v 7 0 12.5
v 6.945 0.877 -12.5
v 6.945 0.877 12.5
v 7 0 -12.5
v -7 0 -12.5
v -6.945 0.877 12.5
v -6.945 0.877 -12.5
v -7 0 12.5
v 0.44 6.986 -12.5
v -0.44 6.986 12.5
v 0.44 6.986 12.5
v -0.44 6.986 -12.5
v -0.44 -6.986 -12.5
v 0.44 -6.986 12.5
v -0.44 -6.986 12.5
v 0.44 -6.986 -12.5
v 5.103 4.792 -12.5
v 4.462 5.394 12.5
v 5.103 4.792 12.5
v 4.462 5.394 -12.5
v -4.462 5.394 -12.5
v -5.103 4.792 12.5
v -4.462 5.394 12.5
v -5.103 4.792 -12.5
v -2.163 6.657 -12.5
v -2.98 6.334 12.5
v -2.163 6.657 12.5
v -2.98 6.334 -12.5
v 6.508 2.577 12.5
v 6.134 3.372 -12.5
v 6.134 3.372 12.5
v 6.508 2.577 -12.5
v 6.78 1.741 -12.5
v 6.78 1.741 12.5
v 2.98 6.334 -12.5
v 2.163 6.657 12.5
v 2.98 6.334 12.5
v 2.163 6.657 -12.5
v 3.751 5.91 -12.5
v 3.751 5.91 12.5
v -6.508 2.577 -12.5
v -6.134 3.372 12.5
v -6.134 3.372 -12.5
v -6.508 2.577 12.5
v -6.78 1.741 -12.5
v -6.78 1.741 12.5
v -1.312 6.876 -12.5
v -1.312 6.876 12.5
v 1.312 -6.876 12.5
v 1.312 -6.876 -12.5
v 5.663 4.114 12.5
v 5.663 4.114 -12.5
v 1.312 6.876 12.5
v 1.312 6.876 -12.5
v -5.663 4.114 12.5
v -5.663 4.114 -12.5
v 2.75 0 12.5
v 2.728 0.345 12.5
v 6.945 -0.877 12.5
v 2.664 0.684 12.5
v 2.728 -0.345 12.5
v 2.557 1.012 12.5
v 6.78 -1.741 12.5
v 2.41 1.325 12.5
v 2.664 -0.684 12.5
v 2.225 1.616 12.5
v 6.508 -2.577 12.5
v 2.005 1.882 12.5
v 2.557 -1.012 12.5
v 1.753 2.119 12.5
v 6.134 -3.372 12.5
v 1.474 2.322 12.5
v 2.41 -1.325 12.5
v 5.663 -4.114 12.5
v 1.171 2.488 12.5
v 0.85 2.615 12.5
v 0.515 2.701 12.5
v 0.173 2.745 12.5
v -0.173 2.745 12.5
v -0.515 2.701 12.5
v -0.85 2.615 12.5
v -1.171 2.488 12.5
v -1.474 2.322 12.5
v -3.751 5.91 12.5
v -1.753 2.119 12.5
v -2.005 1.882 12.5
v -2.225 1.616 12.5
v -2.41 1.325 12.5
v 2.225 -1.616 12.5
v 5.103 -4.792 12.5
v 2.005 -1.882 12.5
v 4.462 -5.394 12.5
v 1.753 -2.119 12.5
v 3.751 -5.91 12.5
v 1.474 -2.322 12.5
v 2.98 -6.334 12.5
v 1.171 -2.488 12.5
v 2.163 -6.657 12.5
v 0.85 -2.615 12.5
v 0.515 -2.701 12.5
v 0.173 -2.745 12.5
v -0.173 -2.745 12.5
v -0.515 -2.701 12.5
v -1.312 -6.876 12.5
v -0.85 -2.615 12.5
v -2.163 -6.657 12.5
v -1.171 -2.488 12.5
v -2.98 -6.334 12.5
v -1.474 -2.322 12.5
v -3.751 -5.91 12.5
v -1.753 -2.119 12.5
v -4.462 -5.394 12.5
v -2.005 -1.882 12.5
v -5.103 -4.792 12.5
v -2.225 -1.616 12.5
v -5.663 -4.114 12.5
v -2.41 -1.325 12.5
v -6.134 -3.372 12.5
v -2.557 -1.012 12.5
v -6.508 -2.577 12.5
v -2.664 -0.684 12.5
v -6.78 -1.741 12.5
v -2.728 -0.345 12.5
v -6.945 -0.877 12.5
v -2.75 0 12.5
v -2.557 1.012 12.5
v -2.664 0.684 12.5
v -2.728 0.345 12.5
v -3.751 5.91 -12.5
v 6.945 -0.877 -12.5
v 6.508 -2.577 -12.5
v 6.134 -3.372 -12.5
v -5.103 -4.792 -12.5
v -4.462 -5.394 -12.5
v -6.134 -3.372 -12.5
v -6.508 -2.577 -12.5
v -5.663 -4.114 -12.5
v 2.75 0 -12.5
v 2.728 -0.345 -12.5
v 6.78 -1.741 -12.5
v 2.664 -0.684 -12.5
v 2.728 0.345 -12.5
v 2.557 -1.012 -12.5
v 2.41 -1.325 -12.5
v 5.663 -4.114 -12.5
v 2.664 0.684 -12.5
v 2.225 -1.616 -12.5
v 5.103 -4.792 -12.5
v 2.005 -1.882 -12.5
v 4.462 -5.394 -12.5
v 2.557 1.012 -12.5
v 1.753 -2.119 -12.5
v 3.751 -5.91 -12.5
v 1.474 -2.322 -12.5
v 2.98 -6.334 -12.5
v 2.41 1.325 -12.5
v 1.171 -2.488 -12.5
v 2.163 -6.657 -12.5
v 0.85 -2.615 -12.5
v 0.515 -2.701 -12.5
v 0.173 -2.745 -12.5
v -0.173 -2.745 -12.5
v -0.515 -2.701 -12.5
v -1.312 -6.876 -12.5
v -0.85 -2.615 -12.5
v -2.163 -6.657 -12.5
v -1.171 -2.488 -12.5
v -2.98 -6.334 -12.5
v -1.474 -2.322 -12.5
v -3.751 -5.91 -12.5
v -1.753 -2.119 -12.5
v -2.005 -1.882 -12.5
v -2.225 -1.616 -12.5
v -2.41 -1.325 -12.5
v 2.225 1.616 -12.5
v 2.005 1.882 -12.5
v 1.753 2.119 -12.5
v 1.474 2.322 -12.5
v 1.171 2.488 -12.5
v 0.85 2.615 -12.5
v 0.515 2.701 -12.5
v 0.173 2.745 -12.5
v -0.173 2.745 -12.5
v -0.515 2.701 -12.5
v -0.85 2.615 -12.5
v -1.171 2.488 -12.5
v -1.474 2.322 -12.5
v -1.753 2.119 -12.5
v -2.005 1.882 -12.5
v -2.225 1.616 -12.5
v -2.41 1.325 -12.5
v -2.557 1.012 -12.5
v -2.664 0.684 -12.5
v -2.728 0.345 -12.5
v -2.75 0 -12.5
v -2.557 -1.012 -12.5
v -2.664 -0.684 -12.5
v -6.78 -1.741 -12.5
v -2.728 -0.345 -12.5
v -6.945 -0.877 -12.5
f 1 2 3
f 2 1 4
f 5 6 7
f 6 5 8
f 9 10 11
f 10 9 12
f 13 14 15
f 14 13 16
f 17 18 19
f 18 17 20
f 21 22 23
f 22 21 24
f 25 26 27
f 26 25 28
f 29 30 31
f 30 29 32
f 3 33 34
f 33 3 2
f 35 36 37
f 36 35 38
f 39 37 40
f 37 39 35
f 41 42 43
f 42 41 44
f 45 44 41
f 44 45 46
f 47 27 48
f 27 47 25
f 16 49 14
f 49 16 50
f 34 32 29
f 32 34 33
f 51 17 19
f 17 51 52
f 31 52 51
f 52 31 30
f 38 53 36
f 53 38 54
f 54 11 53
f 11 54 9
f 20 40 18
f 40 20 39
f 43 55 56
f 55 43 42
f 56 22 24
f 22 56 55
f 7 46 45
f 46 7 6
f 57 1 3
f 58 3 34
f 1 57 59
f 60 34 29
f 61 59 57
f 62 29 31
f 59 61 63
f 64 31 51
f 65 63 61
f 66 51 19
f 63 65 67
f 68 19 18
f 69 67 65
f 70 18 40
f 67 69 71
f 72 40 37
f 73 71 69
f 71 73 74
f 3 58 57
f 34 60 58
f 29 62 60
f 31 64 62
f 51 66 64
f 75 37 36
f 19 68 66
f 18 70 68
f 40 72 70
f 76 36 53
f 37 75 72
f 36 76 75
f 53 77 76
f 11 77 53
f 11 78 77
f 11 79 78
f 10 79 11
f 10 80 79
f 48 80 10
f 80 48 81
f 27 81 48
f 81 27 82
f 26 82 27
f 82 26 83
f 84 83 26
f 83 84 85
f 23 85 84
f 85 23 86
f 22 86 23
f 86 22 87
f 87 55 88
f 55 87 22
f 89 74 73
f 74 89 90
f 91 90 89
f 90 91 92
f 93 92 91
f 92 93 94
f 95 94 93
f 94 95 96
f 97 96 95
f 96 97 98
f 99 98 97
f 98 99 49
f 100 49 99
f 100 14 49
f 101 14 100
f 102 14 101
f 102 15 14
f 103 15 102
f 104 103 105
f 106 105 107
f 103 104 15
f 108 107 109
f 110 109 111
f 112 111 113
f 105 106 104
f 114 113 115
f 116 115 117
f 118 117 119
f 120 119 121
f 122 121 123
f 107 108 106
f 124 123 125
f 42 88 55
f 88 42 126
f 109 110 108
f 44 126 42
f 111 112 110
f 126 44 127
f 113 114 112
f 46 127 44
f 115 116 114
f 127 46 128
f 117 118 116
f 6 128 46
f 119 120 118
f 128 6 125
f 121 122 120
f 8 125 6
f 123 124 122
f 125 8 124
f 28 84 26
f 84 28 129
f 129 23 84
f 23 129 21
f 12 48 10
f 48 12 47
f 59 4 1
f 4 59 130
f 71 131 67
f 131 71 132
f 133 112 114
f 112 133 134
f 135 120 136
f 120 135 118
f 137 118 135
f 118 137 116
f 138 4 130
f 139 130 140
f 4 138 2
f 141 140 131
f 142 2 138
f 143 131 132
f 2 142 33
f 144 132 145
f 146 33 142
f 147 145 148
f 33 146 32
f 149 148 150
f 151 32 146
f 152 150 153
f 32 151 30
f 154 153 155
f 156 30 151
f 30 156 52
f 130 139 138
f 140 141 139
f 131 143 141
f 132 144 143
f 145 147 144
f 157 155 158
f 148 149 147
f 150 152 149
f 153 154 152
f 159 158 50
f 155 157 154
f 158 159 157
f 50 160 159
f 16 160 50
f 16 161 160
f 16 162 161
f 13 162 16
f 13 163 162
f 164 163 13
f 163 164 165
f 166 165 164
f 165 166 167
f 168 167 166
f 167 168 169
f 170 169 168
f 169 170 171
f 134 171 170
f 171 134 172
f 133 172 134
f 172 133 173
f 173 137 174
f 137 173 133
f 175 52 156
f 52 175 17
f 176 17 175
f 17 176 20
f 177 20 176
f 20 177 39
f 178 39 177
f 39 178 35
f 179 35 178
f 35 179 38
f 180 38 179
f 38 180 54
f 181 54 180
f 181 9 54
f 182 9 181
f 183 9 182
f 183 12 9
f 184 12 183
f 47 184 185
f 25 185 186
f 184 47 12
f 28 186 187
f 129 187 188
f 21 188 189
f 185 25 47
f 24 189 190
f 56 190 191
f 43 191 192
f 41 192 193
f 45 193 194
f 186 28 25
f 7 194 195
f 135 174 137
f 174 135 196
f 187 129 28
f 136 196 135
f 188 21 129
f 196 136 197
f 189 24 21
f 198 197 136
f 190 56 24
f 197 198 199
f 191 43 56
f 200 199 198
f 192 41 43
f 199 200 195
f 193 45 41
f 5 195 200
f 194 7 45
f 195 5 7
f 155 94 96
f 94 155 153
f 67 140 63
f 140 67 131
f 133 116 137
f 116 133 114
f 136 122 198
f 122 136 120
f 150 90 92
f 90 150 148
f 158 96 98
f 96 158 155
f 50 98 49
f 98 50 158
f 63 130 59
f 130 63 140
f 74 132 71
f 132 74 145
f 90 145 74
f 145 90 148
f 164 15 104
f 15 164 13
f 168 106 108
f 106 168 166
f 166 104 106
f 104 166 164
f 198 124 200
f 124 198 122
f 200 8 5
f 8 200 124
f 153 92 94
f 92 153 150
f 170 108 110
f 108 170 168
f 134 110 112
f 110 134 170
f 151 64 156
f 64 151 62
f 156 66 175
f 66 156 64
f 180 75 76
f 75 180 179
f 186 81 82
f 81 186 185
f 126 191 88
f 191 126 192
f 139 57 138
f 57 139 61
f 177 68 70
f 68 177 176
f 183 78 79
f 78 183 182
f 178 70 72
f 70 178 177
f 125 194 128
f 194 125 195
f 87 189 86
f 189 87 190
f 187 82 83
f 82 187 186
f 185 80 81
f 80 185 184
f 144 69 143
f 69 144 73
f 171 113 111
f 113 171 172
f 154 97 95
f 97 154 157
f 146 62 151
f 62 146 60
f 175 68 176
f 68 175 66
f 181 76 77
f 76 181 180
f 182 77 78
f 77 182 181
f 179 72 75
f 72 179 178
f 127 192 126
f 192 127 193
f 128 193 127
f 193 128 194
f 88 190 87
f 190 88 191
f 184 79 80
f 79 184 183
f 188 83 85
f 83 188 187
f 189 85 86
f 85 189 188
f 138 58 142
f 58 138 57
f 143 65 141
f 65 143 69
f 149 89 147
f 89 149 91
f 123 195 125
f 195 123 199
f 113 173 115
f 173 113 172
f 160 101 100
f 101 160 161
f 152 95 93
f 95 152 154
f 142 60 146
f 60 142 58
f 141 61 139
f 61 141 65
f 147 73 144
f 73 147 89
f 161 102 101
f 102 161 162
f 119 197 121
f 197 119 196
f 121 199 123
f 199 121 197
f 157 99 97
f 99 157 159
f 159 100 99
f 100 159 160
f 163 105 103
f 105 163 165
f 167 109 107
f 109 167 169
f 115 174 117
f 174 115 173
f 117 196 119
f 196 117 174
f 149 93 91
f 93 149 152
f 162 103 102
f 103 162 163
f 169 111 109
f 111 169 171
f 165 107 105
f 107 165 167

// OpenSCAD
$fn = 50;


difference() {
	union() {
		translate(v = [0, 0, -12.5000000000]) {
			cylinder(h = 25, r = 7.0000000000);
		}
	}
	union() {
		translate(v = [0, 0, -100.0000000000]) {
			cylinder(h = 200, r = 2.7500000000);
		}
	}
}
